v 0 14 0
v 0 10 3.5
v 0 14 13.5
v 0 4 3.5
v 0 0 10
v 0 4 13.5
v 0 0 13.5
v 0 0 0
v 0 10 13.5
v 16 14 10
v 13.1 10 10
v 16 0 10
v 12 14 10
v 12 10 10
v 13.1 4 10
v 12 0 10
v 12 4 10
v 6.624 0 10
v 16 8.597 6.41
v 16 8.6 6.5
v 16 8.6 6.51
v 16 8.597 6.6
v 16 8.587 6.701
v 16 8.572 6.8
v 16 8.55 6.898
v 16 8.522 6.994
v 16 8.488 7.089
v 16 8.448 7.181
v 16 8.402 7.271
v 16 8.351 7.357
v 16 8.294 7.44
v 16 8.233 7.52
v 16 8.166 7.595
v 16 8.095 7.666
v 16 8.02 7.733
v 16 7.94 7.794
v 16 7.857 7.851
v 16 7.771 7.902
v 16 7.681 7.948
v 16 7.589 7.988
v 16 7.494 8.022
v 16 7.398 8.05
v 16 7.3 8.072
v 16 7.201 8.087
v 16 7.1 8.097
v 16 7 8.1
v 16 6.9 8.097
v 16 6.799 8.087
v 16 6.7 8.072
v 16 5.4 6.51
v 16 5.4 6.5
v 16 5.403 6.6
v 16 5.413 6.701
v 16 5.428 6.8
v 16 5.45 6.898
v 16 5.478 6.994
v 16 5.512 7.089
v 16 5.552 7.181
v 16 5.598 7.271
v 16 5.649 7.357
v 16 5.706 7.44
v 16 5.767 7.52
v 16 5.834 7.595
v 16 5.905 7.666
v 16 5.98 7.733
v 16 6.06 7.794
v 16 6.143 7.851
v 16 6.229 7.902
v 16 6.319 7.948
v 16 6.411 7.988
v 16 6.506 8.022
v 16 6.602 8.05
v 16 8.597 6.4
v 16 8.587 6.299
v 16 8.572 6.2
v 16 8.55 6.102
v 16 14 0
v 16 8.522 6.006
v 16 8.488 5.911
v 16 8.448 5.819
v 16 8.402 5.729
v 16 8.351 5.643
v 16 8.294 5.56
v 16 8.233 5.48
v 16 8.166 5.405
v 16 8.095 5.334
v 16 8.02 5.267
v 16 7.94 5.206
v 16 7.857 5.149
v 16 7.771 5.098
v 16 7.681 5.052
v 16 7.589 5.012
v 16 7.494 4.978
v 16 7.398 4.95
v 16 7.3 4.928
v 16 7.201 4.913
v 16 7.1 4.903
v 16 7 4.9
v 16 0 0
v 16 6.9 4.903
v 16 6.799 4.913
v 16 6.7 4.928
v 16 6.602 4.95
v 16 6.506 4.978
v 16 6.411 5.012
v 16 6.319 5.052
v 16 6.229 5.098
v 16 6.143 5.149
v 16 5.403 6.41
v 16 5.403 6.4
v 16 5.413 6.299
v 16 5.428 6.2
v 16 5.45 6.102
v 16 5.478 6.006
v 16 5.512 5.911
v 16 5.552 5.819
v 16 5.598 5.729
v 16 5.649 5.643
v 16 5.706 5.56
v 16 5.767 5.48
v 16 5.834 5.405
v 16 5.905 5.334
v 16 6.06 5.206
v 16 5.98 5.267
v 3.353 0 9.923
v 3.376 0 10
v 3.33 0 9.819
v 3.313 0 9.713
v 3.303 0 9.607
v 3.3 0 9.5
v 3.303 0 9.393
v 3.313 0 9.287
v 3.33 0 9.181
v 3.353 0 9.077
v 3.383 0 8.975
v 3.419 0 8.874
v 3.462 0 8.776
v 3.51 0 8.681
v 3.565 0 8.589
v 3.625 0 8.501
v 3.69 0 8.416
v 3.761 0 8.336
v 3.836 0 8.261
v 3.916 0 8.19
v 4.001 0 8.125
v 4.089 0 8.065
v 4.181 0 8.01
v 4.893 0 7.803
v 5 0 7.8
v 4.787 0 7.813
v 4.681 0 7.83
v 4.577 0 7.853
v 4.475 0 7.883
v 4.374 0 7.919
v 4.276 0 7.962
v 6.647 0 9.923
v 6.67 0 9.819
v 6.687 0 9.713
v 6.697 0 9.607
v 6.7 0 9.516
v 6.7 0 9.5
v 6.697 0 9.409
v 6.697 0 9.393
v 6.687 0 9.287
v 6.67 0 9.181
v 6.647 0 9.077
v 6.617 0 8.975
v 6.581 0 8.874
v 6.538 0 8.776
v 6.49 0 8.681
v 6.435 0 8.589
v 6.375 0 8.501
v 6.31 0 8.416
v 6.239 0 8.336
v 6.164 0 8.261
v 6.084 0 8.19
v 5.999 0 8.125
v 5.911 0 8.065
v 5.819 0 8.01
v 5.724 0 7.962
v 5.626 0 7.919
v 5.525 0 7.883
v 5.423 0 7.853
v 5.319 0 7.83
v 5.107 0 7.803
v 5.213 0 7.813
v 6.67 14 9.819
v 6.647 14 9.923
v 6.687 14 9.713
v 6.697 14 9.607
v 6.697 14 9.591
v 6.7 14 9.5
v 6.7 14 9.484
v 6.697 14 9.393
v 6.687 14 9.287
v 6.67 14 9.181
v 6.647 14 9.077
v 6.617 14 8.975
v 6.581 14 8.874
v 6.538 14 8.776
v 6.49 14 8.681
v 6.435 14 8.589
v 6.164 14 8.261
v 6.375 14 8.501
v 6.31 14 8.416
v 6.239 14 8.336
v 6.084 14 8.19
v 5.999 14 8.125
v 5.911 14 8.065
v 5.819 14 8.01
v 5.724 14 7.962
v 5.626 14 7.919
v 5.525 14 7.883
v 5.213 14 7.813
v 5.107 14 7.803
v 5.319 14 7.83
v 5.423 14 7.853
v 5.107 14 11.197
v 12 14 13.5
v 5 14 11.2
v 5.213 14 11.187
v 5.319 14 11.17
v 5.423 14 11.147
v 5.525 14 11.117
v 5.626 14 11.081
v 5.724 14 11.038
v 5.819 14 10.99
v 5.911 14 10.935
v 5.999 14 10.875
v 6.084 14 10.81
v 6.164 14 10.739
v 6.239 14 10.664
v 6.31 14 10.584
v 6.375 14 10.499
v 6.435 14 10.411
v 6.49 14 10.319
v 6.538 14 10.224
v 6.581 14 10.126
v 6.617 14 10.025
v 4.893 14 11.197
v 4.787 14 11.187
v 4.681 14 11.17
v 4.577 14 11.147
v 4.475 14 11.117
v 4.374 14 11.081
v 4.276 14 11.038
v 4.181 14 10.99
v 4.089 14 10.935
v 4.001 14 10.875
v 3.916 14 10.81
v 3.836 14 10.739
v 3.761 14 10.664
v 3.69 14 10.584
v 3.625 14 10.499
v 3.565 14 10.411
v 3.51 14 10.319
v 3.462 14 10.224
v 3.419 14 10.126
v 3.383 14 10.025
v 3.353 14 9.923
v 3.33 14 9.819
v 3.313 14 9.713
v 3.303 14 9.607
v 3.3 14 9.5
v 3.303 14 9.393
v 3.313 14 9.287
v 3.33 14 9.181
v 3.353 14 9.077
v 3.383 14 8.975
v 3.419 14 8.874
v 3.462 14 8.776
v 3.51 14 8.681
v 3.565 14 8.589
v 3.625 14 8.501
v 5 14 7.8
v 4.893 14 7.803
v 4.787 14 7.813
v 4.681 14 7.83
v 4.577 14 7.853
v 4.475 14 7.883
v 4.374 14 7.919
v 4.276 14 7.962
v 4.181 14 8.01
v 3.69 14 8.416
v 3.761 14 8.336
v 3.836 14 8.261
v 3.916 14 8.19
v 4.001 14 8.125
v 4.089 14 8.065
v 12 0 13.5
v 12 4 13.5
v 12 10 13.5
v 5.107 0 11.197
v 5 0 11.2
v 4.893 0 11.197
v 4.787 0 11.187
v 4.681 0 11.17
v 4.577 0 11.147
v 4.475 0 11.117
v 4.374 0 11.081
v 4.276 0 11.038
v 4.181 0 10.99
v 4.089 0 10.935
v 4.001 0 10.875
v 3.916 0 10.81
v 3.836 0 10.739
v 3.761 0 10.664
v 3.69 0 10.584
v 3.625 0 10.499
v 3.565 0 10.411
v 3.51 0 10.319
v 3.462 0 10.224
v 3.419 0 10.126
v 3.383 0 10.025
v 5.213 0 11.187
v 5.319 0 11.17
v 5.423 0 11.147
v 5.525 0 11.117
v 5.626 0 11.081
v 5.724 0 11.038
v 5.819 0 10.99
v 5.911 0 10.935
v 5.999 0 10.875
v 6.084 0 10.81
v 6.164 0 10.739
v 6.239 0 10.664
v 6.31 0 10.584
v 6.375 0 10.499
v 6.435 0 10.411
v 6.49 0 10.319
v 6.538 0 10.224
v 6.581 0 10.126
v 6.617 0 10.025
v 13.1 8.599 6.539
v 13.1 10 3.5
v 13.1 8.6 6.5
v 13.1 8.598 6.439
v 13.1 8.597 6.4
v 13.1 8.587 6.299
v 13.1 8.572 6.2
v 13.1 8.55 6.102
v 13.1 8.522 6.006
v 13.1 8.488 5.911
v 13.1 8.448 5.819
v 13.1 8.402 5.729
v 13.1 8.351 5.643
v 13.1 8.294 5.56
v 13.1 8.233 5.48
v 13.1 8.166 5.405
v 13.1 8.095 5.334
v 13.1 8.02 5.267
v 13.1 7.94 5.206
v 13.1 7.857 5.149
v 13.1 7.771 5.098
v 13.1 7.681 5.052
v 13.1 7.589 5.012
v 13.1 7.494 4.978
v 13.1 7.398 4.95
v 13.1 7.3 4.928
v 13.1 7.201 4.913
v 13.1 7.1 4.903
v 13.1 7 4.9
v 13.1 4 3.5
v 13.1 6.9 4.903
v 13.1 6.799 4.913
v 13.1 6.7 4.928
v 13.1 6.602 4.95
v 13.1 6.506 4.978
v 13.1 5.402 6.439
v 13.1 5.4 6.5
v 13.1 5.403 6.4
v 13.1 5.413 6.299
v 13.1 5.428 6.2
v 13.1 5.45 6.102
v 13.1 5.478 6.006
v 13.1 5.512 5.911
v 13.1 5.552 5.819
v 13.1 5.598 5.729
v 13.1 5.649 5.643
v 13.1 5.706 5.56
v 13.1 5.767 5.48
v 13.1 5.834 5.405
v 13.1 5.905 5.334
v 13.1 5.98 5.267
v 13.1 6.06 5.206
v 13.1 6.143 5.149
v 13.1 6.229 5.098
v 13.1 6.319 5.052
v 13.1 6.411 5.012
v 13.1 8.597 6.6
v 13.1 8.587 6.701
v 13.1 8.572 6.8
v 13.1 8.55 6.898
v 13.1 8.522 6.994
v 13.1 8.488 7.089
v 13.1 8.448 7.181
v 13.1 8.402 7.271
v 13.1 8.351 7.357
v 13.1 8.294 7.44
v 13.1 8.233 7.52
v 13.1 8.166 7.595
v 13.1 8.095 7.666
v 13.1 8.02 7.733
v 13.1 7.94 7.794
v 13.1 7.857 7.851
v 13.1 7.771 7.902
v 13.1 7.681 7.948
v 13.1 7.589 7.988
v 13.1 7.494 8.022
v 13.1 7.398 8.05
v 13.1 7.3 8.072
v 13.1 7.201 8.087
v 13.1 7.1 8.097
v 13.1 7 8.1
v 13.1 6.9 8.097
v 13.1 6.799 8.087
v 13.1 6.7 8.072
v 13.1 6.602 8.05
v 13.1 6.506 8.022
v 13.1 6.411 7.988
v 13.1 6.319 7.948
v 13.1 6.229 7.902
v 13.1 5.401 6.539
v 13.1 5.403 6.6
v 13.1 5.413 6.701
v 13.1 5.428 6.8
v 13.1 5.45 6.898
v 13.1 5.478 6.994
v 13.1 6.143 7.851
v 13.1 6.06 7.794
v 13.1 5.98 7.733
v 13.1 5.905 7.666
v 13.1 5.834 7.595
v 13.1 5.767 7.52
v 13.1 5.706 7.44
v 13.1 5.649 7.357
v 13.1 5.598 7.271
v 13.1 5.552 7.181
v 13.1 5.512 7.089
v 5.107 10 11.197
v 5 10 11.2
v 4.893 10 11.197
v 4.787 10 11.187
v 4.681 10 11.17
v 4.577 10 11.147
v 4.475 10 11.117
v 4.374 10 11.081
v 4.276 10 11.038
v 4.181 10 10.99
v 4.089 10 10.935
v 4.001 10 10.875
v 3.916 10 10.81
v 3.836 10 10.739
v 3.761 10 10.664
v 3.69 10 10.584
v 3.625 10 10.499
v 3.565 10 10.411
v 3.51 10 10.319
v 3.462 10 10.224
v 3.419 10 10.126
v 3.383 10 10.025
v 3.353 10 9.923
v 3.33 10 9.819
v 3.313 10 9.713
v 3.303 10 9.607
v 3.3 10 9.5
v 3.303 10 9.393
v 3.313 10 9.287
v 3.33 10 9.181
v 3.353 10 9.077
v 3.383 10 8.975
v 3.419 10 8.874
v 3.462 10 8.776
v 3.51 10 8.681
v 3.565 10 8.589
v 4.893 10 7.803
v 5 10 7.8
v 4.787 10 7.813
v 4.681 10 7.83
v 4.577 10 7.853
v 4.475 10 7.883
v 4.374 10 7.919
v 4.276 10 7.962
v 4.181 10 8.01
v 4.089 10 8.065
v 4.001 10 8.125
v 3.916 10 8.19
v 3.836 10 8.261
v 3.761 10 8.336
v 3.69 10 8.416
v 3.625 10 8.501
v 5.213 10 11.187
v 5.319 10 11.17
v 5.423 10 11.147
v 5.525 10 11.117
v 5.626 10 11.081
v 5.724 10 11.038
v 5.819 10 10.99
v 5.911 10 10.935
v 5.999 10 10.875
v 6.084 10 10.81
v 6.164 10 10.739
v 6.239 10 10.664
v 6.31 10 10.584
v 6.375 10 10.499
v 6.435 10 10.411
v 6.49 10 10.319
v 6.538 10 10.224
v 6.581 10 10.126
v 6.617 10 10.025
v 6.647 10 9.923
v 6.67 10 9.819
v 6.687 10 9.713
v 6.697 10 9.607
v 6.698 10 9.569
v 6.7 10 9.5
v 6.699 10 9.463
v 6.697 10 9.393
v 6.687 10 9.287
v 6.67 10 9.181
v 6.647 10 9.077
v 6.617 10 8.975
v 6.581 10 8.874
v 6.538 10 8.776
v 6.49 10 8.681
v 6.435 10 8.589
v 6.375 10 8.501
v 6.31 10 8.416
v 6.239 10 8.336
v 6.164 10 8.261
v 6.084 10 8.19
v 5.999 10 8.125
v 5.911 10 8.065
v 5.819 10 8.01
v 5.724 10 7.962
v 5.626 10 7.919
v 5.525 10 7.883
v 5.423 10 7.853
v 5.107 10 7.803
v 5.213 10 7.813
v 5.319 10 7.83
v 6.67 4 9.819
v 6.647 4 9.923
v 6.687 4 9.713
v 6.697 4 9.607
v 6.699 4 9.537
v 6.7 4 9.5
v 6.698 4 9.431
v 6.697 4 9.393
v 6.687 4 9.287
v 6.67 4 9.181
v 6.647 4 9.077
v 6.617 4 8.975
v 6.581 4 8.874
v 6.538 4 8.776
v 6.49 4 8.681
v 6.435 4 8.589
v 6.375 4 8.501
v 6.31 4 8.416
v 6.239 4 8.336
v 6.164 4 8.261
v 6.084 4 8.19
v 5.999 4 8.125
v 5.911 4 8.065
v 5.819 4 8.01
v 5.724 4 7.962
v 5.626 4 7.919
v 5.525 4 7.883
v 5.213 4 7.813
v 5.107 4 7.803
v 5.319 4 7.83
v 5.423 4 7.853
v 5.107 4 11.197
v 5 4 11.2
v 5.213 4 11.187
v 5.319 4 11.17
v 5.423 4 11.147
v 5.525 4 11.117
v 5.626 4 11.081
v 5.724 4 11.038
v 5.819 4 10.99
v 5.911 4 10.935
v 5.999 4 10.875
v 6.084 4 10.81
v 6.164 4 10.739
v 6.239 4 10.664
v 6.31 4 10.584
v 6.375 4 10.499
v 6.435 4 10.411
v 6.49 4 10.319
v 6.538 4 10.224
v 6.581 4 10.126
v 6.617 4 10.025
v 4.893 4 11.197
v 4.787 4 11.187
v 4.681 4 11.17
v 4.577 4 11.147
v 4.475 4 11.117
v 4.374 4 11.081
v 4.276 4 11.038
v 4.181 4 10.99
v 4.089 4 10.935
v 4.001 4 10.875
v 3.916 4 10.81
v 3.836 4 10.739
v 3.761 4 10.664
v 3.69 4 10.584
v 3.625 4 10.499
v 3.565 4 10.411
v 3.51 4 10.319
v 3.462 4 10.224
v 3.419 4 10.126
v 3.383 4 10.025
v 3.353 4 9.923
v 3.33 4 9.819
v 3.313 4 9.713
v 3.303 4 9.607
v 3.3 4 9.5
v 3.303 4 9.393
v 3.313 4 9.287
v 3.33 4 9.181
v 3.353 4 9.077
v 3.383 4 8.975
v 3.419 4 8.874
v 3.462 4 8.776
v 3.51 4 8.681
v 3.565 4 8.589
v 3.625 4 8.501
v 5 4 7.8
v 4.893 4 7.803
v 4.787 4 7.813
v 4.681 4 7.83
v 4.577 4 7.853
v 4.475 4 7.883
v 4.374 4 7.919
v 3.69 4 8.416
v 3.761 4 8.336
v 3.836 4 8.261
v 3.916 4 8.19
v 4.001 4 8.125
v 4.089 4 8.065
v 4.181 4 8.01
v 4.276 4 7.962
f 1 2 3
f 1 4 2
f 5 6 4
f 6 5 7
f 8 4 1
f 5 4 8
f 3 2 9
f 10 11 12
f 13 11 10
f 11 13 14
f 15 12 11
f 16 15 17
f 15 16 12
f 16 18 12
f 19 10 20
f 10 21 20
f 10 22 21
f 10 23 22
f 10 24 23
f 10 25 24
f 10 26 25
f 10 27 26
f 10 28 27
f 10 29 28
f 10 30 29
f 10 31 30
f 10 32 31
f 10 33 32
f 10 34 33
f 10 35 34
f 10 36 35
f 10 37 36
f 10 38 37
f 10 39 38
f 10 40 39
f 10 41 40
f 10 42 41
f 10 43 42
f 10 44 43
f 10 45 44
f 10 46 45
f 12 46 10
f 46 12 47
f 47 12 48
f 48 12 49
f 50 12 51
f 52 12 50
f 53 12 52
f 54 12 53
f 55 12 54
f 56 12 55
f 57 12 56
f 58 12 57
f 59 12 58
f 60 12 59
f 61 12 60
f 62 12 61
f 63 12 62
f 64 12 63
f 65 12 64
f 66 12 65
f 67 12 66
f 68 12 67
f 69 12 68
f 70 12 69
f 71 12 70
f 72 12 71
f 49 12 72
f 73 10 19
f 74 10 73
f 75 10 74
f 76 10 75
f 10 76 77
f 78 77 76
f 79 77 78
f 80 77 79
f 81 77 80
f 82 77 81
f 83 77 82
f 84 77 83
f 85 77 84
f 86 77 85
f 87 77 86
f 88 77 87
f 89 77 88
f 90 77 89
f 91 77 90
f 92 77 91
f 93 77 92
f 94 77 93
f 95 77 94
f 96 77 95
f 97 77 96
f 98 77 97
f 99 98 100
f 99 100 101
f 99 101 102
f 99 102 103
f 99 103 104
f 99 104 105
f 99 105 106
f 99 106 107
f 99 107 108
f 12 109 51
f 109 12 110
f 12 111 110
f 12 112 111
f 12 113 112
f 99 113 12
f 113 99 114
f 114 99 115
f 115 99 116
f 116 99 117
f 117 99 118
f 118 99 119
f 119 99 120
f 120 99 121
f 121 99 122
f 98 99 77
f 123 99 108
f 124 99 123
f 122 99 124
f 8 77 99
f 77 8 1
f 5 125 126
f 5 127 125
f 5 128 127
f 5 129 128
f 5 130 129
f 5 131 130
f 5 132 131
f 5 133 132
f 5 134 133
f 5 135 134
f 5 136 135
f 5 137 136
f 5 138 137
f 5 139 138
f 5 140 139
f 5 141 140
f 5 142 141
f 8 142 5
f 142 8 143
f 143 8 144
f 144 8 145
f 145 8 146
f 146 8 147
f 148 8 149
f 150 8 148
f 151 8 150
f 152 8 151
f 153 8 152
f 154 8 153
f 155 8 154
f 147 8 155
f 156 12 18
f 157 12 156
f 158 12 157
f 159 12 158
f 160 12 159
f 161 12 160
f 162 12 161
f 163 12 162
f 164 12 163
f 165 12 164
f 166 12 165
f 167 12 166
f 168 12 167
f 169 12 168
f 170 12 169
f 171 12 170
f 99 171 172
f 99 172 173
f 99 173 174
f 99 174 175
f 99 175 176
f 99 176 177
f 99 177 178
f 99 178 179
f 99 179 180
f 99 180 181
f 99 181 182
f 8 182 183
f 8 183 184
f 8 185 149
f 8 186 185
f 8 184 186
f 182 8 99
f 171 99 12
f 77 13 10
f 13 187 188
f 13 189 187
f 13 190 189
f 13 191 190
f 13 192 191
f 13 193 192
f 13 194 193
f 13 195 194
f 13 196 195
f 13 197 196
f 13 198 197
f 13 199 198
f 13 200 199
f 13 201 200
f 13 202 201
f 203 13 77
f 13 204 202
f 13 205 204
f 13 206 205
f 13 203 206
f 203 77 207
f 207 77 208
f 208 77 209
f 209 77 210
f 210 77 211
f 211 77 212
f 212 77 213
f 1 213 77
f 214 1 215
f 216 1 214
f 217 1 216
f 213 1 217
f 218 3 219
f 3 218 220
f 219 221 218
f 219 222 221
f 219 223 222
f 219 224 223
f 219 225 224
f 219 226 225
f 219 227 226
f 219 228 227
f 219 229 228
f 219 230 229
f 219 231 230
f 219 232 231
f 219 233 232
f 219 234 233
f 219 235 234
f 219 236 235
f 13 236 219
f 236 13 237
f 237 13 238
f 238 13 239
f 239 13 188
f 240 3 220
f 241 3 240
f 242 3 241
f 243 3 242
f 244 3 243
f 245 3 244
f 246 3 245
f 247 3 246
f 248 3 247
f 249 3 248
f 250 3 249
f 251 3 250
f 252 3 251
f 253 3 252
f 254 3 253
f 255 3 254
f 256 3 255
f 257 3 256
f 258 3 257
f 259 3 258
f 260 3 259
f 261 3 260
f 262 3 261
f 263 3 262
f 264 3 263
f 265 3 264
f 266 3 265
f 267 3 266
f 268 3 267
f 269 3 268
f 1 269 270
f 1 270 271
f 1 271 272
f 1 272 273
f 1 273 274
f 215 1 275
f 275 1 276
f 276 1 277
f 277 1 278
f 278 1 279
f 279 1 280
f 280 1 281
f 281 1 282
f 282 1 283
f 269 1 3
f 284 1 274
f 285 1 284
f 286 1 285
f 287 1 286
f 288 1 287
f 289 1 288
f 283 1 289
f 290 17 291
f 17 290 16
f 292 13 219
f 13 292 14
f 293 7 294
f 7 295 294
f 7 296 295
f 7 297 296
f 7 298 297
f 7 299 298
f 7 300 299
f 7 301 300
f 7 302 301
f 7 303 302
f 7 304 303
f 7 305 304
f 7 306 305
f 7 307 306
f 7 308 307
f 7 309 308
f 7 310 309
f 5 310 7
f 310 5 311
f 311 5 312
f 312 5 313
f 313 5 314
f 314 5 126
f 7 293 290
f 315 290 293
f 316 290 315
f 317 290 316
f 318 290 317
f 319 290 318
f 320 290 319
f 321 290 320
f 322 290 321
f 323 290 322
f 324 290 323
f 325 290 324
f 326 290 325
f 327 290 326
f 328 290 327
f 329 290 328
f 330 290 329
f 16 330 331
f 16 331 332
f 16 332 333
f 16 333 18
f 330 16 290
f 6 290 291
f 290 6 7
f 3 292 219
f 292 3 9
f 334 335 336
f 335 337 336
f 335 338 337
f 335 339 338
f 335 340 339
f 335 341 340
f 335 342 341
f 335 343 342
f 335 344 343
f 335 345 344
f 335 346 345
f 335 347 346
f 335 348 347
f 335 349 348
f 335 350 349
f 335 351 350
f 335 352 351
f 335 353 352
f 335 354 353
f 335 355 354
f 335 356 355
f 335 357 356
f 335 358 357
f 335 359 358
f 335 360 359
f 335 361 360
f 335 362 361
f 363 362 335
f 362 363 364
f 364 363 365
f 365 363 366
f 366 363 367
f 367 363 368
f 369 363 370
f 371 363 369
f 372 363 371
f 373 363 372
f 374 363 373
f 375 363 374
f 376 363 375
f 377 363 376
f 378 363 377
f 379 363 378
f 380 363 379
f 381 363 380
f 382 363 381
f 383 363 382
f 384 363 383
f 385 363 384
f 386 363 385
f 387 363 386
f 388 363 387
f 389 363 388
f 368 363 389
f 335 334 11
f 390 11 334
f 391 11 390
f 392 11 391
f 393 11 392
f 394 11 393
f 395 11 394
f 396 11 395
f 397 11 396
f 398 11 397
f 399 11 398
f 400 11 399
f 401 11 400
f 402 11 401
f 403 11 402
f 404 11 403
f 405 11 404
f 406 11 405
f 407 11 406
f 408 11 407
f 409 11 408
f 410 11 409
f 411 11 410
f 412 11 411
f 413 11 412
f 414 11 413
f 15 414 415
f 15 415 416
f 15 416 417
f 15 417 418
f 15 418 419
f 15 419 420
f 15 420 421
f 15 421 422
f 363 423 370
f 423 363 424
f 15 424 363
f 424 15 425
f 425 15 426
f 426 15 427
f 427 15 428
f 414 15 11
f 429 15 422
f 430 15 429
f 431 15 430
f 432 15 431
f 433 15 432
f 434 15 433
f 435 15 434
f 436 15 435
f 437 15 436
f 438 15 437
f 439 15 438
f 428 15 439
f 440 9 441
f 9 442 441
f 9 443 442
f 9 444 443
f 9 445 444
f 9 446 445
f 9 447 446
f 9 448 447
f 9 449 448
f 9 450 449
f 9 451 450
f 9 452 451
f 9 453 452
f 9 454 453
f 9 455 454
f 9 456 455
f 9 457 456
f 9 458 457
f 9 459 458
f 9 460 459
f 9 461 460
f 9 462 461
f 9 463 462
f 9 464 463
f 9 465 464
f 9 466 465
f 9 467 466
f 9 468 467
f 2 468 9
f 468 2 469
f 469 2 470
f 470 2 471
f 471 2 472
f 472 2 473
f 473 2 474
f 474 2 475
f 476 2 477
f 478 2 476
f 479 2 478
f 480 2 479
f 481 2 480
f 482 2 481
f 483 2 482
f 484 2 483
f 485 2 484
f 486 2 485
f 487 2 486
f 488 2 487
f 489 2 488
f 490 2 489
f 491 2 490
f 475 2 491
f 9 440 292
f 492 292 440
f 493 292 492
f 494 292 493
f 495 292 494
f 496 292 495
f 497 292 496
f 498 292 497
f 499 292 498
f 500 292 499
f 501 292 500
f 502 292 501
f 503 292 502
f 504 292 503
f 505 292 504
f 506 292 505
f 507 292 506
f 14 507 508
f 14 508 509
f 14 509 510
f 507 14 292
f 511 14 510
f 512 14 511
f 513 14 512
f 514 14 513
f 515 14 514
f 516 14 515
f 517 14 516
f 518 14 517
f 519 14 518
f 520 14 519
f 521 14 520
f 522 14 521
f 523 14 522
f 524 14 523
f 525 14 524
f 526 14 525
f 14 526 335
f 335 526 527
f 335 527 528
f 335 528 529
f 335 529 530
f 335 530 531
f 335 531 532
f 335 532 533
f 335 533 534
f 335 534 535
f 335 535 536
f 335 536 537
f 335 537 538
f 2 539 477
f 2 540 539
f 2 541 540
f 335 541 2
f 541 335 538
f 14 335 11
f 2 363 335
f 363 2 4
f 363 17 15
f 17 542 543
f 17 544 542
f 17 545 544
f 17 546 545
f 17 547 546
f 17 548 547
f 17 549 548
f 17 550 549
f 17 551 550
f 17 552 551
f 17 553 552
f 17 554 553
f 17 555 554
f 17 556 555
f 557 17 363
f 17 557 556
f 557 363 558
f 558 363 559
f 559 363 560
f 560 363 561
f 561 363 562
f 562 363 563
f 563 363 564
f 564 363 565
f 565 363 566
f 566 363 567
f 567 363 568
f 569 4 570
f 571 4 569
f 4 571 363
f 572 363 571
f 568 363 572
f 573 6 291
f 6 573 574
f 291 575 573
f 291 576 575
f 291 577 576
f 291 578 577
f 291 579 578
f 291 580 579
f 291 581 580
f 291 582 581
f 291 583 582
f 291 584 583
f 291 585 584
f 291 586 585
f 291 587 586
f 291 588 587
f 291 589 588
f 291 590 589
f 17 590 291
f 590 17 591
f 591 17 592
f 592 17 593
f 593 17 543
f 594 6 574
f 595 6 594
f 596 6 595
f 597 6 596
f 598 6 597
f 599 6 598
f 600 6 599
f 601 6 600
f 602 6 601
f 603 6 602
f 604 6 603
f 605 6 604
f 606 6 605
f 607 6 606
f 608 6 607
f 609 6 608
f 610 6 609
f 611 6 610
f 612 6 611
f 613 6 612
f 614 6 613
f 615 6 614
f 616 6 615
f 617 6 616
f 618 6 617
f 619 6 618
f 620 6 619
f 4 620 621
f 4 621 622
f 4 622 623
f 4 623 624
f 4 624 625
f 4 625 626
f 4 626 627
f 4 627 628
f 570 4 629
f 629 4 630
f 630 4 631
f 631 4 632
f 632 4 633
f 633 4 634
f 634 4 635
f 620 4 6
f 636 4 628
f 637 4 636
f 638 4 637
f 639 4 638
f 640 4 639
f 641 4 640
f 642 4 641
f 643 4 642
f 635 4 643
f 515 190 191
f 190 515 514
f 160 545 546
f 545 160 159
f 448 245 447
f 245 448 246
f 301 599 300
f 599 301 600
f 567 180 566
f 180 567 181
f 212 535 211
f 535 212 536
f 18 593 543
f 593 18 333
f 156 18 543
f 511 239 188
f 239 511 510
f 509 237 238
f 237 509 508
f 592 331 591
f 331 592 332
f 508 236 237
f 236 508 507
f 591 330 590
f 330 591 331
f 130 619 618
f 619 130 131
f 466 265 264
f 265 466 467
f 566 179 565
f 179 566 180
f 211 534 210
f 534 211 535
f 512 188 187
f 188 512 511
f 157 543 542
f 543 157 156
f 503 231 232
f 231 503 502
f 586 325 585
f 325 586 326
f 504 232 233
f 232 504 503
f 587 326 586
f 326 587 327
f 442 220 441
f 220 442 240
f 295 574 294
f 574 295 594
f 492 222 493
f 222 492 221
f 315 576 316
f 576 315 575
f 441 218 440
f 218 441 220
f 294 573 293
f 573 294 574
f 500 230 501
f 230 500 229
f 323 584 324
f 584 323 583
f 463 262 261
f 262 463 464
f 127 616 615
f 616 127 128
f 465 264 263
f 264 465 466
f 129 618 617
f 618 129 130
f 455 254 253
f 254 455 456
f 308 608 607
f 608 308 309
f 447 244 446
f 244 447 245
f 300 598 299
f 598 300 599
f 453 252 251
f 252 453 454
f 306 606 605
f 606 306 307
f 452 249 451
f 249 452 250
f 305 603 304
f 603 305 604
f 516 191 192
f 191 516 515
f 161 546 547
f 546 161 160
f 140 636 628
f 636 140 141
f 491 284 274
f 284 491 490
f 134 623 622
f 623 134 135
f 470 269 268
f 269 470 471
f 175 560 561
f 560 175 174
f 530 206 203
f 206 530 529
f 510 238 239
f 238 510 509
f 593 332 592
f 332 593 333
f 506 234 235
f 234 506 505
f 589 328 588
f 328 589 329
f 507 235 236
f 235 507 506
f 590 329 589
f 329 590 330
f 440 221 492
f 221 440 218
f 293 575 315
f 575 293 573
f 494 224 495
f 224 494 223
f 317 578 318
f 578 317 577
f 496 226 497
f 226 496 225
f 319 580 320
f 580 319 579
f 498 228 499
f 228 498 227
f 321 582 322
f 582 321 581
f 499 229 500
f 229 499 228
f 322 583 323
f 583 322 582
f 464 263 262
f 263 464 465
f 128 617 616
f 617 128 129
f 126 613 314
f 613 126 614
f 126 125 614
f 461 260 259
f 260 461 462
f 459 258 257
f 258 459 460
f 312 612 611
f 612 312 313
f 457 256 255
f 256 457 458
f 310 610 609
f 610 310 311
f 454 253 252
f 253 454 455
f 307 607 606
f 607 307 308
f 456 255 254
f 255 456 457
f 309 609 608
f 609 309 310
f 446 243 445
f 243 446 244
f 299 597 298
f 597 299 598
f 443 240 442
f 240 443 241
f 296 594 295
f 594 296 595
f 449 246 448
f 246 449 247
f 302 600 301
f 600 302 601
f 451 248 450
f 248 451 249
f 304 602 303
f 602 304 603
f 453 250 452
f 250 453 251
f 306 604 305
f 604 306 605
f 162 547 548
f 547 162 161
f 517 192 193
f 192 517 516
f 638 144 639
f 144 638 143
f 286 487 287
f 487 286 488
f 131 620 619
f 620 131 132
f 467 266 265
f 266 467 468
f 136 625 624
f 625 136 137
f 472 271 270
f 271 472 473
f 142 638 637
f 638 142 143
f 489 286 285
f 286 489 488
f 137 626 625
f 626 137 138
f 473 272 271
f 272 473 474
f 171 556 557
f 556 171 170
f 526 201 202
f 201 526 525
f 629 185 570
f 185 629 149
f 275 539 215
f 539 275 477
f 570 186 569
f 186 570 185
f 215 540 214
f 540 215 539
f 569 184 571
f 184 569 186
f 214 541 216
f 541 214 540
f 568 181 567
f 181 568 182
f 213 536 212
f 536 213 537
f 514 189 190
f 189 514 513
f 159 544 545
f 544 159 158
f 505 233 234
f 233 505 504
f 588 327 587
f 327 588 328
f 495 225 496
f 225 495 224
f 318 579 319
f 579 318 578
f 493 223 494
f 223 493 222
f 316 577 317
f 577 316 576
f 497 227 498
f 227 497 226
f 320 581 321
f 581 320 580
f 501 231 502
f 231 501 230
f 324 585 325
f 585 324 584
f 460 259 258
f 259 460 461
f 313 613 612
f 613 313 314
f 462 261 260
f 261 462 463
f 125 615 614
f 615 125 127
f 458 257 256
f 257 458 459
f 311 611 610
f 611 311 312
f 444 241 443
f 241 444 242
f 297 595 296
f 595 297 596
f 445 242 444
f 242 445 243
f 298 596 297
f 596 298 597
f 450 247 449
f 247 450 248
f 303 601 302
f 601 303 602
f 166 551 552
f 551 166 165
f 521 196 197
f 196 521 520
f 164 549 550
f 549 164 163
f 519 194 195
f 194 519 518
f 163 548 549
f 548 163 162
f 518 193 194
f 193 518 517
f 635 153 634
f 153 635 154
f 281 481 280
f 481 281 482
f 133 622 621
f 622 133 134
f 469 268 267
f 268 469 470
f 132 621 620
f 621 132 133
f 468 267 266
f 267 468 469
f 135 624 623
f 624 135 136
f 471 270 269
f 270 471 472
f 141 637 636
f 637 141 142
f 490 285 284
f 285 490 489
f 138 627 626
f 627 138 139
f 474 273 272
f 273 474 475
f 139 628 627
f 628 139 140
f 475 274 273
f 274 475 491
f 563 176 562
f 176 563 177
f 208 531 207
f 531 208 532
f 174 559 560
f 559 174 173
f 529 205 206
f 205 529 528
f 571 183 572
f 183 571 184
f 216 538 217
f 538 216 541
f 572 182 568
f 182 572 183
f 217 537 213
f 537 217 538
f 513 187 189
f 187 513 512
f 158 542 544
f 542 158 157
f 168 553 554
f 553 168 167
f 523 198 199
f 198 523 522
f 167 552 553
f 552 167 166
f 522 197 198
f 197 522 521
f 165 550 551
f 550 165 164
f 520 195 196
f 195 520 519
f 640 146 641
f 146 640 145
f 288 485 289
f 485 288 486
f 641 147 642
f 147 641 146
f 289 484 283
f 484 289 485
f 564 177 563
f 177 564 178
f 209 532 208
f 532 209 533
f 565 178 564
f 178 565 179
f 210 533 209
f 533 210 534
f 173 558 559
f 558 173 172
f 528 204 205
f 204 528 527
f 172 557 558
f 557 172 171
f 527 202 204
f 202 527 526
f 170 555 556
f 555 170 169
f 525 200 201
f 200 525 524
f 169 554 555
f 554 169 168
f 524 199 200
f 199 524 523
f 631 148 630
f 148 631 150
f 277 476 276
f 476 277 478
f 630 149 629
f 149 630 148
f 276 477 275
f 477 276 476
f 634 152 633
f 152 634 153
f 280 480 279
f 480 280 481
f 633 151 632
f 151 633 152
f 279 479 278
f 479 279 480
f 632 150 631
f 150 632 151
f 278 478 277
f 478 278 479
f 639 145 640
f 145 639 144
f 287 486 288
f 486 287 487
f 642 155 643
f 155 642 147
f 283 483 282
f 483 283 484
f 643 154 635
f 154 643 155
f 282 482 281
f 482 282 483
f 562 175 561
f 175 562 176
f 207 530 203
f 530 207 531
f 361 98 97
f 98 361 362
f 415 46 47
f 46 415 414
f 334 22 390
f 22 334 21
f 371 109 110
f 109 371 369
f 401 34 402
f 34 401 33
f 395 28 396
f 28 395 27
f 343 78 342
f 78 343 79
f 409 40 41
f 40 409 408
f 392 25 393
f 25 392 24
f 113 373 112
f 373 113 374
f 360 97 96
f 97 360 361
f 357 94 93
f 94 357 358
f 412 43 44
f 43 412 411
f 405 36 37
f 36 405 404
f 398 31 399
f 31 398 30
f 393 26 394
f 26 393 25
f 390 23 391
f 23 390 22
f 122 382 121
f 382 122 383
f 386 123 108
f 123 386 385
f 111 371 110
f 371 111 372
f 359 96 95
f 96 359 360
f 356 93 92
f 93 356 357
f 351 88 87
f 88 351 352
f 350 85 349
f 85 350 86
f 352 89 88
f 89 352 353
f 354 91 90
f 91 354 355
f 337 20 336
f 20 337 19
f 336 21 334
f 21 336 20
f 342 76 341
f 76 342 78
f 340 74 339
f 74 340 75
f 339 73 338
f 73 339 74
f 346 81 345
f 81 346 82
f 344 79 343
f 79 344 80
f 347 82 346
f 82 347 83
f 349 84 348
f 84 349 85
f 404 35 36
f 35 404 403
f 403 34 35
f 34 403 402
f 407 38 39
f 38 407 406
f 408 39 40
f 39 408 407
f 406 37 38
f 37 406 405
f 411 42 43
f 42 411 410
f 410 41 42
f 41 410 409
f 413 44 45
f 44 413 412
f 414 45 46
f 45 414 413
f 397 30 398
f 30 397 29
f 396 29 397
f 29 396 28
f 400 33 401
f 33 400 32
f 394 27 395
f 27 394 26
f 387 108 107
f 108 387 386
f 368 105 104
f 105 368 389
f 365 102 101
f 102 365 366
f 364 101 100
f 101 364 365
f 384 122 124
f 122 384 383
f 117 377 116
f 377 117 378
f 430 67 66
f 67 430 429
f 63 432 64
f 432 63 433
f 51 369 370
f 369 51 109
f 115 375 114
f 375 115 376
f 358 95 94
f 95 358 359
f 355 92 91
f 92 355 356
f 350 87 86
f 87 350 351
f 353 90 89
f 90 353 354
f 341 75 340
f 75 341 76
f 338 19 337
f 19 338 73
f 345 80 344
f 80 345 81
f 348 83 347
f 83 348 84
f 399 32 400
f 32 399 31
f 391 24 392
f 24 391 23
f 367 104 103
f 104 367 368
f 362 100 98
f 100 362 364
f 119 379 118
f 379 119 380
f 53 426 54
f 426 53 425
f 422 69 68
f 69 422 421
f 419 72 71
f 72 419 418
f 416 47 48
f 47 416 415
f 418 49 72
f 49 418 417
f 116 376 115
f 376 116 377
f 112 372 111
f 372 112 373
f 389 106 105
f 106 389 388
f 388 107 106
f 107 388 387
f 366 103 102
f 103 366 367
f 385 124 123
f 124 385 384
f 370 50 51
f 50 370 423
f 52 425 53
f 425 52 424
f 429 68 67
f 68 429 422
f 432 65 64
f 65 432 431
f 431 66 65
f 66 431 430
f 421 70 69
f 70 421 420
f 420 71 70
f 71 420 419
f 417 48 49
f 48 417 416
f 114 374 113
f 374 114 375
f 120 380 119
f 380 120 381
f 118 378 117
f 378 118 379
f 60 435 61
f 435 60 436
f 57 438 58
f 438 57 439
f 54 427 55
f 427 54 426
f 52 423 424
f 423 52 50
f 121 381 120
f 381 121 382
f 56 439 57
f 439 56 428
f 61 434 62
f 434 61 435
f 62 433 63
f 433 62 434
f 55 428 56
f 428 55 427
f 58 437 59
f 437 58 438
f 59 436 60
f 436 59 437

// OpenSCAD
$fn=100;


translate([57,6,10.5]){
    difference(){
        union(){
            translate([-57,-6,-10.5]) cube([16,14,10]);
            translate([-57,8,-2]) rotate([90,0,0]) cube([12,5,14]);
        }
        translate([-57.1,-2,-7]) cube([13.2,6,14]);
        translate([-52,11,-1]) rotate([90,0,0]) cylinder(20,1.7,1.7);
        translate([-45,1,-4])rotate([0,90,0]) cylinder(10,1.6,1.6,true);
    }
}
